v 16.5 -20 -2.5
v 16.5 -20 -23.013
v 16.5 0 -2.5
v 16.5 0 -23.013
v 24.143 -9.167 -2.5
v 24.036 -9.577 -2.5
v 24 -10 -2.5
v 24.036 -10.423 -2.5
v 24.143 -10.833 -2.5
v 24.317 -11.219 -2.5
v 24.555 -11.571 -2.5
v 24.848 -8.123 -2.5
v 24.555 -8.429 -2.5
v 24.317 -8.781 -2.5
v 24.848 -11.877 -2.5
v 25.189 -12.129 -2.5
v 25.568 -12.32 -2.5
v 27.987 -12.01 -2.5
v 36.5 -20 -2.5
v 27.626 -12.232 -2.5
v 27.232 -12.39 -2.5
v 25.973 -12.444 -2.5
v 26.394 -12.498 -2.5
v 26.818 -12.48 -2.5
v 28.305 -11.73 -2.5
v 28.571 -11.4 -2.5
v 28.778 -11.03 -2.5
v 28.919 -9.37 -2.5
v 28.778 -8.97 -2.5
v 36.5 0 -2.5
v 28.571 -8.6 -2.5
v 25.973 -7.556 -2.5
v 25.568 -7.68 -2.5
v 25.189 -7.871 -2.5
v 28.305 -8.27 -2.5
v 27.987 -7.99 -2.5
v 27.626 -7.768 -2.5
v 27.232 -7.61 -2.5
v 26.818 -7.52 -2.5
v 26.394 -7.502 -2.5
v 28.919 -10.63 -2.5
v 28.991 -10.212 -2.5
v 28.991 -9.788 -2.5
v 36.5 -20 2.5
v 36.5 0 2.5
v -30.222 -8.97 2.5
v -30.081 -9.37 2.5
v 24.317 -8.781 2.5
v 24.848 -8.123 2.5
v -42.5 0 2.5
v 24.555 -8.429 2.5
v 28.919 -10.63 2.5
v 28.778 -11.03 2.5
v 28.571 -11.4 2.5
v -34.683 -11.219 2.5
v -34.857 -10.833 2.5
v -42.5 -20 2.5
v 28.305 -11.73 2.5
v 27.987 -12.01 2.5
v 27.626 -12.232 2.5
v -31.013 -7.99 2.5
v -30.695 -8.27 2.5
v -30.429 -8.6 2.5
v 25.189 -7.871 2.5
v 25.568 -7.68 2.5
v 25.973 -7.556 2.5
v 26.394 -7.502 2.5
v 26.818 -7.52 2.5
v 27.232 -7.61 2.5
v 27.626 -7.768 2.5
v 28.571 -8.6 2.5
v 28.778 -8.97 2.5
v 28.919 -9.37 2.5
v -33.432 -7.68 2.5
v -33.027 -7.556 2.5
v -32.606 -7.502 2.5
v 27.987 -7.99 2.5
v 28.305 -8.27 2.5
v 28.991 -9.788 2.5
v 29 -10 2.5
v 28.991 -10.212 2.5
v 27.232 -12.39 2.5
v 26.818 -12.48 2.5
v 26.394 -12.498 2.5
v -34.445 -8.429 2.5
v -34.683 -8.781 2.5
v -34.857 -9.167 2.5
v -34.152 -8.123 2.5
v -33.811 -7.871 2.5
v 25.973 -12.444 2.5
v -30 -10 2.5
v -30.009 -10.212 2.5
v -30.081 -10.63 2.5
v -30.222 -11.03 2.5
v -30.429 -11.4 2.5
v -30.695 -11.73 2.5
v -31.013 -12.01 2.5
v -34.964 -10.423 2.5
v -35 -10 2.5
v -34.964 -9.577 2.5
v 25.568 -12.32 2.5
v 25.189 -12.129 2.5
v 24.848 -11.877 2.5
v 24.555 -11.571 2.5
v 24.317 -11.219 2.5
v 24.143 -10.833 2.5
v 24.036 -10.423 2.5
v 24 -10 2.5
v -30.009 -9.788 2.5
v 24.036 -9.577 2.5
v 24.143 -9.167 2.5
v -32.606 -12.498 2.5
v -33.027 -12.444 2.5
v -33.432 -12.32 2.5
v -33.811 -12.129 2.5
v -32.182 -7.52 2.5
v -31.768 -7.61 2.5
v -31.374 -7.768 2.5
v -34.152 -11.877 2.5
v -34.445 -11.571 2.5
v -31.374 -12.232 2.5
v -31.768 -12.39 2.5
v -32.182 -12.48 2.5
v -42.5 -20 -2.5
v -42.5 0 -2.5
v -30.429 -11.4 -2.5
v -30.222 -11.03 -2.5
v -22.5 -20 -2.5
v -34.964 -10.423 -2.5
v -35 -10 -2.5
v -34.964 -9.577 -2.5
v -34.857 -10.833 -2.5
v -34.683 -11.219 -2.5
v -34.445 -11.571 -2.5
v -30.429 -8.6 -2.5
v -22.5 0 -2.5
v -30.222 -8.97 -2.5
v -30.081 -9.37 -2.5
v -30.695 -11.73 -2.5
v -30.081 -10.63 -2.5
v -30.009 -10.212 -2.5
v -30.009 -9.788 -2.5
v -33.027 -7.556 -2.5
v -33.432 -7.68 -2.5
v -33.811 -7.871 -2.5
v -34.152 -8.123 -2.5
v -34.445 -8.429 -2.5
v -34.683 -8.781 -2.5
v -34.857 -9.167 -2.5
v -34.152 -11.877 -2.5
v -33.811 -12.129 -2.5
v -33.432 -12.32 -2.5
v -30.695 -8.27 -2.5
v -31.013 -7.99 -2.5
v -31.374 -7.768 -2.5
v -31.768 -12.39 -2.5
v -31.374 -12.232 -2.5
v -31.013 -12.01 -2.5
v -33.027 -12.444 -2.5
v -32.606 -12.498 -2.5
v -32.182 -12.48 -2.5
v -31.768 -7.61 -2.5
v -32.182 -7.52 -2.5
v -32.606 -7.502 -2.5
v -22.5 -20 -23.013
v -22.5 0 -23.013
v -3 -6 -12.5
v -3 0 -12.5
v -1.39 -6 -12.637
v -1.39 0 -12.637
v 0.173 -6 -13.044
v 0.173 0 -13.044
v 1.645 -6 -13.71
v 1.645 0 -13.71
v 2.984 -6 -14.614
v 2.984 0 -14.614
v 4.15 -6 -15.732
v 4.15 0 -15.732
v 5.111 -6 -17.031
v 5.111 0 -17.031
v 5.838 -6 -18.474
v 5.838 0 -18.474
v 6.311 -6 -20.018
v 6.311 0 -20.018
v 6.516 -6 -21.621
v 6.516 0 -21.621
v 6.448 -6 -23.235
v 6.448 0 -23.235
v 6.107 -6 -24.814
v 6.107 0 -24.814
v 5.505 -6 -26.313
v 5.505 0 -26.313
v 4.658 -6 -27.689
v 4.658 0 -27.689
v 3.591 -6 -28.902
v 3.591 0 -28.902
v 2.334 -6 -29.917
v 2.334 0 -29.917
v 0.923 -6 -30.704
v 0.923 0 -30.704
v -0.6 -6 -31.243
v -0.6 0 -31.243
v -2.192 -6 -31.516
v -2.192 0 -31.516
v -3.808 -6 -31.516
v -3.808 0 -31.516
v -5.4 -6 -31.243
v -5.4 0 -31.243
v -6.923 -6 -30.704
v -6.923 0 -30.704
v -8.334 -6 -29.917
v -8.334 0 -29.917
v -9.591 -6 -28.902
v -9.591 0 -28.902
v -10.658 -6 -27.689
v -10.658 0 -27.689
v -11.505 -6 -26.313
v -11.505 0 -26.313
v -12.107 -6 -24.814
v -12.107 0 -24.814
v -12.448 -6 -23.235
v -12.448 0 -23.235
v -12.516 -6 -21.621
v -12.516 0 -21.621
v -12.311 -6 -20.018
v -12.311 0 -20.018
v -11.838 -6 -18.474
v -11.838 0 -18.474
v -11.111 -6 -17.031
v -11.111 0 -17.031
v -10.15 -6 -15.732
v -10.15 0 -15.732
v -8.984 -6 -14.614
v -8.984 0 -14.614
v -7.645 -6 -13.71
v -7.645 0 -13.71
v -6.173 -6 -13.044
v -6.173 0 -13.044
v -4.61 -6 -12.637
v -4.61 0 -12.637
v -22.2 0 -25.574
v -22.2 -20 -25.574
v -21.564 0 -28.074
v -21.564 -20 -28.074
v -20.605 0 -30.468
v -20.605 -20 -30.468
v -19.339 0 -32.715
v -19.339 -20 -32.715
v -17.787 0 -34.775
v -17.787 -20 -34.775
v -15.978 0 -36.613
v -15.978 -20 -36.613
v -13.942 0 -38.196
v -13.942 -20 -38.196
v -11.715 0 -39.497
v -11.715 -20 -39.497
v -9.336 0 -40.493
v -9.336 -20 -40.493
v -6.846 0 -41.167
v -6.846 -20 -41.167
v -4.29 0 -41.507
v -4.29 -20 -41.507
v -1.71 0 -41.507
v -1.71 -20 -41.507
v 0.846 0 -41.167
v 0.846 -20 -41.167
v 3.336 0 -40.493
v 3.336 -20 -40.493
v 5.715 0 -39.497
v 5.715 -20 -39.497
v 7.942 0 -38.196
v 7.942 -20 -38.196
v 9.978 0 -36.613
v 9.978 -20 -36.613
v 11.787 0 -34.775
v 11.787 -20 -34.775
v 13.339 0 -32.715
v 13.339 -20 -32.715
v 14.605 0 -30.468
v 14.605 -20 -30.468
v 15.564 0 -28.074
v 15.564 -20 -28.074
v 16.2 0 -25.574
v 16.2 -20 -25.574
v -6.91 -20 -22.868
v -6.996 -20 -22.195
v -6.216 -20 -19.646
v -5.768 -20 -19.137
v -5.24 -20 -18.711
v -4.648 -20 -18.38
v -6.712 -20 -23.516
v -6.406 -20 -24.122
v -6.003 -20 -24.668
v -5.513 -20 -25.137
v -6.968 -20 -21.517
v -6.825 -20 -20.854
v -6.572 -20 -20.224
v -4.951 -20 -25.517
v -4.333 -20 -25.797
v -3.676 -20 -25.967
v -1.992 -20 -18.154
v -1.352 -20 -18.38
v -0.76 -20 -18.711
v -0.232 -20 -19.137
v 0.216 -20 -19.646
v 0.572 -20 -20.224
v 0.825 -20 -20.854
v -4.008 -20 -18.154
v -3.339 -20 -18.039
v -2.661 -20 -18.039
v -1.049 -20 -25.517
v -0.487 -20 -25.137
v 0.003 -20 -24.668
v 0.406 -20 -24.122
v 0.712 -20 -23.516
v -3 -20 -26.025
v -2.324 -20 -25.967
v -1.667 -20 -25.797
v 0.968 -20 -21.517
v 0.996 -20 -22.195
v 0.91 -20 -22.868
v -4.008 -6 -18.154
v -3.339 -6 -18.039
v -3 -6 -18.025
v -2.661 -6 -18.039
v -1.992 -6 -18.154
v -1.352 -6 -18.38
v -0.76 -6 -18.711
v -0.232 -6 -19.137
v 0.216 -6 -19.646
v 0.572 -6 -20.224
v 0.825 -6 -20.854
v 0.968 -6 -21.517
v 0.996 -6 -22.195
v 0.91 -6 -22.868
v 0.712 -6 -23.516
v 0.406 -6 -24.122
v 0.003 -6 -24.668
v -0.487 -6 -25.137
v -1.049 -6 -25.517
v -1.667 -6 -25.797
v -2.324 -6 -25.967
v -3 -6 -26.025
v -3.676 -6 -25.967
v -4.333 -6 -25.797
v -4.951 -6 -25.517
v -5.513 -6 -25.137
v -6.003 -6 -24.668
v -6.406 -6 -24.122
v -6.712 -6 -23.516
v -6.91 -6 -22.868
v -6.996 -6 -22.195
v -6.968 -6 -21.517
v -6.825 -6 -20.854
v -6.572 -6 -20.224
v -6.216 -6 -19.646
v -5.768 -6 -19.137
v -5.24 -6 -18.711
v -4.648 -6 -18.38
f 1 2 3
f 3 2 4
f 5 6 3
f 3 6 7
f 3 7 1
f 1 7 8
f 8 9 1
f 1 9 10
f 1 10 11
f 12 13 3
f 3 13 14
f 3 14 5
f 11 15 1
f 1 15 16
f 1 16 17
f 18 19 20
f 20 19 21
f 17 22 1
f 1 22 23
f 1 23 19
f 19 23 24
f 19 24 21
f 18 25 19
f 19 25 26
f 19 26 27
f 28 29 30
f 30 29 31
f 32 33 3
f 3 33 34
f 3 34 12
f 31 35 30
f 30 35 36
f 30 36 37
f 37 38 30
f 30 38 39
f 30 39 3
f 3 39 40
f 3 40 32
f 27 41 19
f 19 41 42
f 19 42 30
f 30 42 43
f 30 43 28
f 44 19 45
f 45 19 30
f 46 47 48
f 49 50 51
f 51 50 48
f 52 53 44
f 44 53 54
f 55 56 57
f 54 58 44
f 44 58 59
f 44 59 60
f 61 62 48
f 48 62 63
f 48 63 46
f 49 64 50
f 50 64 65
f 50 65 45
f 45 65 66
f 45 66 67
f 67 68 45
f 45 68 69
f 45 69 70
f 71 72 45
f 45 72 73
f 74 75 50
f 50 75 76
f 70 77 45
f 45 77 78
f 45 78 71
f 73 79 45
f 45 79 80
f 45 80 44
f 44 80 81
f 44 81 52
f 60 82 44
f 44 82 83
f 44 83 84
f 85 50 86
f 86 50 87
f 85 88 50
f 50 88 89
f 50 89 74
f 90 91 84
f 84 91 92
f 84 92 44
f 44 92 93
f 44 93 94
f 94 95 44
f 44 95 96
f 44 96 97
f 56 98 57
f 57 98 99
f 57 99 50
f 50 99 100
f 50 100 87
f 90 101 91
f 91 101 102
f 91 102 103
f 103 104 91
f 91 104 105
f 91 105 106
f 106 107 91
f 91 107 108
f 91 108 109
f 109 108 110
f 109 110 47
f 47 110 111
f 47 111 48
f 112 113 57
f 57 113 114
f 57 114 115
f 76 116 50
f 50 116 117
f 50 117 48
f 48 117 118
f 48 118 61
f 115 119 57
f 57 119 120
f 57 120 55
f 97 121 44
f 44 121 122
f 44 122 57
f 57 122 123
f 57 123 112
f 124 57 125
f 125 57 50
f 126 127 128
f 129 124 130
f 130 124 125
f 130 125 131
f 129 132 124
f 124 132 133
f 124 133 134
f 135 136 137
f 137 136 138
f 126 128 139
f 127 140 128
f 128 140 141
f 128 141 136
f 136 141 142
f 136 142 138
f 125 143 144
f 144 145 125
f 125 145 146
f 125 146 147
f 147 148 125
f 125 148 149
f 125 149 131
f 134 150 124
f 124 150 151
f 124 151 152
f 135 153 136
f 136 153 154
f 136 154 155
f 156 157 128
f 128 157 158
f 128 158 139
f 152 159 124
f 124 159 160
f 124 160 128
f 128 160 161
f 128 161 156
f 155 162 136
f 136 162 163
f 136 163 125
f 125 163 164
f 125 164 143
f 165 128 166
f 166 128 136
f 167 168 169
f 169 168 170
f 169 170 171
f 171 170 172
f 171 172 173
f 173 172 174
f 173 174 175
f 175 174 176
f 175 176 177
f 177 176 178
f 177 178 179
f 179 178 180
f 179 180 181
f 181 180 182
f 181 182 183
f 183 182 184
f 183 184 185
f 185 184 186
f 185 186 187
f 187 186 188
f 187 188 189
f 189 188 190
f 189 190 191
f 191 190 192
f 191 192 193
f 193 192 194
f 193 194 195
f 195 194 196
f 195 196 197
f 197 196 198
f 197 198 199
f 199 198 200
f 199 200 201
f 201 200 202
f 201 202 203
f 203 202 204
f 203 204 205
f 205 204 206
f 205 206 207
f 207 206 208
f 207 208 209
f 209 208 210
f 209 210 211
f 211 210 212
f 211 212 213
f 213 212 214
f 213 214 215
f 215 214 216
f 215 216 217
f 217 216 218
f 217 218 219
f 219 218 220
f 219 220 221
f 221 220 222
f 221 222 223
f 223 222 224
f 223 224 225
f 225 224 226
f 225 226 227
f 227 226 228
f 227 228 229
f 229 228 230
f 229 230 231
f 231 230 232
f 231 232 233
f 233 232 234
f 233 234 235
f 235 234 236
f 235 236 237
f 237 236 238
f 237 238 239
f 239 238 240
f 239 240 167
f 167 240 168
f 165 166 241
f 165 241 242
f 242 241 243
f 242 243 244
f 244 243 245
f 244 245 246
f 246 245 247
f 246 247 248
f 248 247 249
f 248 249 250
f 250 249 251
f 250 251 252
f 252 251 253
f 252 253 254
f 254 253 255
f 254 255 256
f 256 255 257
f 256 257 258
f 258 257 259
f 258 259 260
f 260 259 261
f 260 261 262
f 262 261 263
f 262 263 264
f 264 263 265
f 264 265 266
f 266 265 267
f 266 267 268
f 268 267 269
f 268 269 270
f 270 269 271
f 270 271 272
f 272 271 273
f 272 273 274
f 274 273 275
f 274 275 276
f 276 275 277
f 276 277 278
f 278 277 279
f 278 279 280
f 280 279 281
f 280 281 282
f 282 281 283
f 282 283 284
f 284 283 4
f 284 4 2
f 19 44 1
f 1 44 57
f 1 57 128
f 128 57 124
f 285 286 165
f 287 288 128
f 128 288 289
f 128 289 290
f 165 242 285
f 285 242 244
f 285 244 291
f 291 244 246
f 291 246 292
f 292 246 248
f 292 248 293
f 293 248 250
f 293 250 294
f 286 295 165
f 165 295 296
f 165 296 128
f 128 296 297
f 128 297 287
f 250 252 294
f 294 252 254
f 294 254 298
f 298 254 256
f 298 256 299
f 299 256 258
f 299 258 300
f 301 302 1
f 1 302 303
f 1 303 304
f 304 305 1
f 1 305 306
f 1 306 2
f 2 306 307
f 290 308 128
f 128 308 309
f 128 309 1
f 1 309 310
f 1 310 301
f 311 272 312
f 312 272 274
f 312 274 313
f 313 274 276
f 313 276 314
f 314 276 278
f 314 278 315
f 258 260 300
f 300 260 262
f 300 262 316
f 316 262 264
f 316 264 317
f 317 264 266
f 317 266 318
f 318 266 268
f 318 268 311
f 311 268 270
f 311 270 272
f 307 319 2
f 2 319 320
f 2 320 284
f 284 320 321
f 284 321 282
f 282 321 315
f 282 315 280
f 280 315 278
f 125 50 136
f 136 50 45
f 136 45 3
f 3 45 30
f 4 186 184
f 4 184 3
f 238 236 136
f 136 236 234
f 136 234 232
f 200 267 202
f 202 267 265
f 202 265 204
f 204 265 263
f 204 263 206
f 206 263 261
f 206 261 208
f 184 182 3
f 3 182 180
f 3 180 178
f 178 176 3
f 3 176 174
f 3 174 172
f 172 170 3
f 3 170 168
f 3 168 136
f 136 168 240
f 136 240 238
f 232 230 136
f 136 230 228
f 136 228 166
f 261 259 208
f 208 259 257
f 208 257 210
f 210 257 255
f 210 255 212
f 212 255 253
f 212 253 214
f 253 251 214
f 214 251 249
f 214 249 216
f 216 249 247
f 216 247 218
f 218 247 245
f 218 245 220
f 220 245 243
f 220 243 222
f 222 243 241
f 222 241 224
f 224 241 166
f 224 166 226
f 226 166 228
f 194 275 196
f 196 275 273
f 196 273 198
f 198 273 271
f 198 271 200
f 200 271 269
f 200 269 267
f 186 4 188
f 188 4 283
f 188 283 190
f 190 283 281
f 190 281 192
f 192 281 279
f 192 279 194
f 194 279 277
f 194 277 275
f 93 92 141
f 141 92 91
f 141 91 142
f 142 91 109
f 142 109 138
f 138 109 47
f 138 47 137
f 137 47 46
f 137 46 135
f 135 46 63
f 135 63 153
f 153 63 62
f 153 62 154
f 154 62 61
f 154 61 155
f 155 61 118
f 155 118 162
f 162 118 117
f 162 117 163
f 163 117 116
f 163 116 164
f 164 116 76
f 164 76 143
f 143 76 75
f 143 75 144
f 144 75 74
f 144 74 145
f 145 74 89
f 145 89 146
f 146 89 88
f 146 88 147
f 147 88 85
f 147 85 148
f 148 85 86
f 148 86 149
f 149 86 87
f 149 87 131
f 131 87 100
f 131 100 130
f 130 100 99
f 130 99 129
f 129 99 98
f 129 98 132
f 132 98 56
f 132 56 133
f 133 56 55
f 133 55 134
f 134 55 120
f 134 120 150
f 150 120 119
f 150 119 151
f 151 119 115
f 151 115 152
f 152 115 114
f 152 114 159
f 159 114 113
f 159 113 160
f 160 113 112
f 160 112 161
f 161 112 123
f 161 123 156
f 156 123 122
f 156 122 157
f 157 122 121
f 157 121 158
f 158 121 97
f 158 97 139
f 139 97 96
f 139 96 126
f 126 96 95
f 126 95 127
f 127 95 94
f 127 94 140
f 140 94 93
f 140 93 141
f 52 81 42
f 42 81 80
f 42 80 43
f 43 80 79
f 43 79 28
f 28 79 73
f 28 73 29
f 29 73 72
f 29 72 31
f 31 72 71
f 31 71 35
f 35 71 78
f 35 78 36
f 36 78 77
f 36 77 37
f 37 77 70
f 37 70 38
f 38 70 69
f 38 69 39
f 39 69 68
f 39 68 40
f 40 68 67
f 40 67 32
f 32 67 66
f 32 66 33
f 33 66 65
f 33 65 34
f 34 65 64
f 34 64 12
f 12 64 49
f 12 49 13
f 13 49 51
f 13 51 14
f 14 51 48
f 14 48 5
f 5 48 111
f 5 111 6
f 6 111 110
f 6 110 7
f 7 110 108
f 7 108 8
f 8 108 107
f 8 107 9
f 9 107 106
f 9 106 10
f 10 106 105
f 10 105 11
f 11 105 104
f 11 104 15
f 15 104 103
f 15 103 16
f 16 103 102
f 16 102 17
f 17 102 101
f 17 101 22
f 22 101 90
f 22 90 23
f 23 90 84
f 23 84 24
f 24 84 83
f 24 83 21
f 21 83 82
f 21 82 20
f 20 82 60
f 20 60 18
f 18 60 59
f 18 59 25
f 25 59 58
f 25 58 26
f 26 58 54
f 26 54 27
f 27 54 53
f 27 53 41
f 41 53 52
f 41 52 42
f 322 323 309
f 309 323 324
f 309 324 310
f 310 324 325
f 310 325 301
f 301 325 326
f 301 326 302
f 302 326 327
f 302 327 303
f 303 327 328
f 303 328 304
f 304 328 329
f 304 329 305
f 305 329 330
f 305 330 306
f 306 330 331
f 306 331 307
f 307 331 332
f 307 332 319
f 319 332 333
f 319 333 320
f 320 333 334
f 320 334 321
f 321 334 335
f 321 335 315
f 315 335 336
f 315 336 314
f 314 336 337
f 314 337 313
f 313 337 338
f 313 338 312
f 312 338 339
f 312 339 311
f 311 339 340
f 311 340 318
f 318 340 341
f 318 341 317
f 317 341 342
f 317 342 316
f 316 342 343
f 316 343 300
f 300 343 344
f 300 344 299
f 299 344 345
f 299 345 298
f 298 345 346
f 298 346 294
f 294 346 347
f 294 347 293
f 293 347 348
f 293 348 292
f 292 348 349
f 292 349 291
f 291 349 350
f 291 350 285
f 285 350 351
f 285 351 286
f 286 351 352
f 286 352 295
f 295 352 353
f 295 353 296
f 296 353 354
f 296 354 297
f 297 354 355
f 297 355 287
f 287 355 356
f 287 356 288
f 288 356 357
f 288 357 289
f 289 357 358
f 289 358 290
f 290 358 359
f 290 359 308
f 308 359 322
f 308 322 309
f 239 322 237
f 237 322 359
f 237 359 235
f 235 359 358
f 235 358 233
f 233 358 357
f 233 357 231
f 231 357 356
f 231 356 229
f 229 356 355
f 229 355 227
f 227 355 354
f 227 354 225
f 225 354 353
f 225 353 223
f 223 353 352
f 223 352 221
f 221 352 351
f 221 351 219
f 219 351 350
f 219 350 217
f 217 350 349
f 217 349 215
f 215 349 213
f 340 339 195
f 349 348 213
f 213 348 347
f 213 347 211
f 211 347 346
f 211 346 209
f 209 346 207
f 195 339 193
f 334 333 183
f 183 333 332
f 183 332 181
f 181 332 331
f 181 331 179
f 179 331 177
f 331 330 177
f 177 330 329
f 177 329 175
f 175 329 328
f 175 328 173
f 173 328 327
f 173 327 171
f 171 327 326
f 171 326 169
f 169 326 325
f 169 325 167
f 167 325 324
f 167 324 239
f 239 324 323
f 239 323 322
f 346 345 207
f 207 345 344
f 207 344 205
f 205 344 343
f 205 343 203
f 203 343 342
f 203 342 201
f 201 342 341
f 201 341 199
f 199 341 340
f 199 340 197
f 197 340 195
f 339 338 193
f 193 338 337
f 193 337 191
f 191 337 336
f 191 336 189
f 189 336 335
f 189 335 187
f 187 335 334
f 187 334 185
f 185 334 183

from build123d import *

# Parameters (mm, degrees)
BODY_START           = -20
BODY_OUTLINE_R       = 9.525
BODY_DEPTH           = 20
SKETCH2_R            = 2.5
MOUNTING_HOLES_DEPTH = 5
SKETCH3_R            = 9.525
SKETCH3_R_2          = 4
HOLEINSERT_DEPTH     = 14


# Read off the part's stored shape, not the designer's step: Body
with BuildPart() as part:
    # Body outline → Body (new body)
    with BuildSketch(Plane(origin=(0, 0, 0), x_dir=(1, 0, 0), z_dir=(0, 1, 0)).offset(BODY_START)):
        with BuildLine():
            Line((16.5, 2.5), (16.5, 23.012737313))
            ThreePointArc((16.5, 23.012737313), (-3, 41.55), (-22.5, 23.012737313))
            Line((-22.5, 23.012737313), (-22.5, 2.5))
            Line((-22.5, 2.5), (-42.5, 2.5))
            Line((-42.5, 2.5), (-42.5, -2.5))
            Line((-42.5, -2.5), (36.5, -2.5))
            Line((36.5, -2.5), (36.5, 2.5))
            Line((36.5, 2.5), (16.5, 2.5))
        make_face()
        with Locations((-3, 22.025)):
            Circle(BODY_OUTLINE_R, mode=Mode.SUBTRACT)
    extrude(amount=BODY_DEPTH)

    # Sketch2 → Mounting Holes (cut)
    with BuildSketch(Plane(origin=(0, 0, -2.5), x_dir=(-1, 0, 0), z_dir=(0, 0, -1))):
        with Locations((-26.5, -10)):
            Circle(SKETCH2_R)
        with Locations((32.5, -10)):
            Circle(SKETCH2_R)
    extrude(amount=-MOUNTING_HOLES_DEPTH, mode=Mode.SUBTRACT)

    # Sketch3 → HoleInsert (add)
    with BuildSketch(Plane.XZ.offset(20)):
        with Locations(Location((-3, -22.025, 0), (0, 0, 90))):
            Circle(SKETCH3_R)
        with Locations(Location((-3, -22.025, 0), (0, 0, 270))):
            Circle(SKETCH3_R_2, mode=Mode.SUBTRACT)
    extrude(amount=-HOLEINSERT_DEPTH)


solid = part.part
